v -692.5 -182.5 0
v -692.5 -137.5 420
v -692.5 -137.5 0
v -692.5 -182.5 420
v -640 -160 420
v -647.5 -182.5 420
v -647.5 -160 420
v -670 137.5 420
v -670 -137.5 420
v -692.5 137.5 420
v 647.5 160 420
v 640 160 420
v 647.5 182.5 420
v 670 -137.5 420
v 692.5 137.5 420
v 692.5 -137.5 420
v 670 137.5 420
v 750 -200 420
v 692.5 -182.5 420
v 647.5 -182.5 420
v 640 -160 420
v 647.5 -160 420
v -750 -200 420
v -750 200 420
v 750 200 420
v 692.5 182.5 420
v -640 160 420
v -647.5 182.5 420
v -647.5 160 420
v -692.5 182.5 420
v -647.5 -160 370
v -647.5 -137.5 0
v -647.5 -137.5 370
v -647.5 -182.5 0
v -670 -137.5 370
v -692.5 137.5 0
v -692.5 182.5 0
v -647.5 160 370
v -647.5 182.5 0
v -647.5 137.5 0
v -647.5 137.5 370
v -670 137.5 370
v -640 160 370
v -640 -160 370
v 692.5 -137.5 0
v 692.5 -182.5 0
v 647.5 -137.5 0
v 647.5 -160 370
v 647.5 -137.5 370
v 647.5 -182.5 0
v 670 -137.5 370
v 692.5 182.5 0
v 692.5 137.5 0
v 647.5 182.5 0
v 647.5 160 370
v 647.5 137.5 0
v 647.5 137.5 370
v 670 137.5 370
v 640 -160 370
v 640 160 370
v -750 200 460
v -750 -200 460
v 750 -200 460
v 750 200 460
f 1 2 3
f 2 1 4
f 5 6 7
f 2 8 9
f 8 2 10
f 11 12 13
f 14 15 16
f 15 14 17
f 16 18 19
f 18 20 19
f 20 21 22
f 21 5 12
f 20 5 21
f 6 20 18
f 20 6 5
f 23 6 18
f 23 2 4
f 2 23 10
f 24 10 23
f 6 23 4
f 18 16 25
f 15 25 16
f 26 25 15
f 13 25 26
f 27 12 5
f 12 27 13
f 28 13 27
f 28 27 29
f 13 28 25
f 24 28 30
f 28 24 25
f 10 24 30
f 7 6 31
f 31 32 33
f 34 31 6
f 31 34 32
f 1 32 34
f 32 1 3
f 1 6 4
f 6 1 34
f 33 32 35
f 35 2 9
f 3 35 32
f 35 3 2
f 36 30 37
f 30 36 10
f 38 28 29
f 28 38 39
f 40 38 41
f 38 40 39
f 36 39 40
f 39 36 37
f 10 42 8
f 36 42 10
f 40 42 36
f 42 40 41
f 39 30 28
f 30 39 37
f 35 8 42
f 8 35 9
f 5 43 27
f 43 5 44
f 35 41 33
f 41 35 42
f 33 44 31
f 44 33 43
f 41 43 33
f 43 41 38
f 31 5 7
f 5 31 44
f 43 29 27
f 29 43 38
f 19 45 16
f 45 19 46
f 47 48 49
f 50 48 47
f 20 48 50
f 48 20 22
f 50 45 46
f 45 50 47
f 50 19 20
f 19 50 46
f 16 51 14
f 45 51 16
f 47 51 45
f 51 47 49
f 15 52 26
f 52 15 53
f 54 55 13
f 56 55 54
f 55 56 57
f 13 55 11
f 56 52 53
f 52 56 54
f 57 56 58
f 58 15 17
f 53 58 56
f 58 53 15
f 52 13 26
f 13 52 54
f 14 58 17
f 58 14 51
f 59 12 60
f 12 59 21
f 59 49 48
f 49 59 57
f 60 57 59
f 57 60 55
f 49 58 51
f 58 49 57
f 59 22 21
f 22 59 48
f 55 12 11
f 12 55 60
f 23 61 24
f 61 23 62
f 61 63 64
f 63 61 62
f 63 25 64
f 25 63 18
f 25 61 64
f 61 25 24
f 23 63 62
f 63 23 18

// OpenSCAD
// file: tea_shop_furniture_parameters.scad
// =============================================================================
// TEA SHOP DIORAMA — GROUP 6: EXTERIOR FURNITURE PARAMETERS
// =============================================================================
// All units: mm (1000 mm = 1.0 m), 1:1 real-world scale (1000 units = 1 GTA unit).
// Shared global coordinate system (identical to Groups 1–5):
//   +X -> left -> right  (0 = left outer wall, BUILD_W = right outer wall)
//   +Y -> front -> back  (0 = front wall eave face, BUILD_D = back wall, porch in -Y)
//   +Z -> up             (0 = top surface of base slab / ground datum)
// =============================================================================

// =============================================================================
// 1. SHARED GLOBAL VARIABLES (Reused from Groups 1–5 — identical values)
// =============================================================================
WALL_T             = 250;   // wall panel thickness                      (0.25 m)
BUILD_W            = 6000;  // building width along X                    (6.00 m)
BUILD_D            = 4000;  // building depth along Y                    (4.00 m)
FRONT_H            = 2400;  // wall height at FRONT eave (short side)    (2.40 m)
WIN_X              = 600;   // left pier width / window start X datum    (0.60 m)
WIN_W              = 3400;  // service window width                      (3.40 m)
SILL_H             = 900;   // knee-wall sill height beneath window      (0.90 m)
BASE_H             = 200;   // base plinth vertical thickness            (0.20 m)
BASE_MARGIN_FRONT  = 3000;  // front porch slab depth (extends to Y=-3m) (3.00 m)

// Aliases for compatibility with earlier group files:
wall_thickness     = WALL_T;
building_width     = BUILD_W;
building_depth     = BUILD_D;
front_eave_height  = FRONT_H;
sill_height        = SILL_H;
base_front_margin  = BASE_MARGIN_FRONT;


// =============================================================================
// 2. GROUP 6 PARAMETERS — BENCH (Long Wooden Porch Bench)
// =============================================================================
// REFERENCE OBSERVATIONS (Images: page 1/2 daylight/night, page 5 clay,
// page 7 front elevation, page 8 wireframe, page 14 eye-level):
//
// 1. Bench Style & Proportions:
//    - Simple utilitarian Indian roadside tea stall wooden bench.
//    - Single flat solid rectangular wooden plank for the seat.
//    - Two leg assemblies (one at each end). Wireframe (page 8) and clay (page 5)
//      confirm each leg pair is NOT a solid A-frame slab, but TWO straight
//      square timber posts tied together under the seat by a horizontal cross
//      apron rail. The posts are vertical (0 deg angle) with inset mounting.
//    - Bench height is roughly half the window sill height:
//      SILL_H = 900 mm -> BENCH_HEIGHT = 460 mm (~18 inches standard seating).
//    - Bench length spans ~1500 mm, comfortably seating 3-4 patrons.
//    - Bench width is ~400 mm (standard 16-inch bench seat).
//
// [ESTIMATED DIMENSIONS NOTE]:
// - Bench top thickness (40 mm) estimated from front elevation pixel ratio
//   (~1/11 of bench height).
// - Leg post cross-section (45x45 mm) estimated from wireframe edge density.
// - Inset of legs from ends (80 mm) and edges (17.5 mm) estimated from clay shot.
// - Bench X position (X = 550 mm) sits under the left pier and left edge of
//   the service window, leaving clear passage to the counter and door.
// - Bench Y position (Y = -1250 mm) sits centrally under the pergola canopy
//   (between wall Y=0 and front post line Y=-2250 mm).
BENCH_LENGTH          = 1500; // bench seat plank length along X (mm)
BENCH_WIDTH           = 400;  // bench seat plank width along Y (mm)
BENCH_HEIGHT          = 460;  // total seat height from ground (Z=0) to top face (mm)
BENCH_TOP_THICKNESS   = 40;   // thickness of seat top plank (mm)

// Bench Leg Pair (2 posts + top cross apron rail per end):
BENCH_LEG_SIZE        = 45;   // square timber leg cross-section (45x45 mm)
BENCH_LEG_ANGLE       = 0;    // leg angle from vertical (0 deg = straight vertical posts)
BENCH_LEG_PAIR_WIDTH  = 320;  // center-to-center span across Y of the 2 end legs (mm)
                              // Outer edge-to-edge span = 320 + 45 = 365 mm
                              // Leaves (400 - 365)/2 = 17.5 mm front/back overhang
BENCH_LEG_INSET_X     = 80;   // inset of leg center from left/right plank ends (mm)
BENCH_APRON_WIDTH     = 30;   // thickness of horizontal cross apron rail along X (mm)
BENCH_APRON_HEIGHT    = 50;   // vertical height of horizontal cross apron rail (mm)

// Bench Porch Placement (World Coordinates):
BENCH_POS_X           = 550;  // left edge X coordinate of bench top (mm)
BENCH_POS_Y           = -1250;// center Y coordinate of bench (mm)
                              // Back edge is at Y = -1050 mm, Front edge at Y = -1450 mm
BENCH_ROT_Z           = 0;    // rotation angle about Z (0 = parallel to front wall)


// =============================================================================
// 3. GROUP 6 PARAMETERS — STOOLS (Round Wooden Porch Stools)
// =============================================================================
// REFERENCE OBSERVATIONS (Images: page 1/2, page 5 clay, page 7 elevation,
// page 8 wireframe, page 13 interior close-up, page 14 eye-level):
//
// 1. Stool Style & Proportions:
//    - Round wooden top seat disc with bevel/slight chamfer, resting on
//      4 splayed square timber legs.
//    - Polycount optimization: 12-sided cylinder ( = 12) provides a clean,
//      authentic round silhouette while keeping polycount low for GTA V MLO props.
//    - Stool height is 450 mm (level with the bench, exactly half the 900mm sill).
//    - Seat diameter is 300 mm (~12 inches), standard for street tea stalls.
//    - Legs splay outward slightly from under the seat disc (angle ~3.5 deg),
//      ensuring stability while remaining inside the seat diameter footprint at the base.
//
// 2. Stool Clustering Layout:
//    - The reference images show 3 stools clustered together directly in front of
//      the counter window (X = 2500..3400 mm), where patrons sit to drink tea.
//    - They are NOT placed on a rigid grid:
//        * Stool 1: [2550, -1550] — front-left of the cluster, closer to walkway
//        * Stool 2: [2850, -1050] — back-mid of the cluster, closer to counter window
//        * Stool 3: [3350, -1400] — front-right of the cluster, near entrance path
//
// [ESTIMATED DIMENSIONS NOTE]:
// - Seat thickness (35 mm) estimated from front elevation and wireframe.
// - Leg cross-section (30x30 mm) estimated from wireframe edge density.
// - Splay angle (3.5 deg) estimated from wireframe slope relative to vertical.
STOOL_HEIGHT          = 450;  // total height to top of stool seat (mm)
STOOL_SEAT_DIA        = 300;  // round seat disc diameter (mm)
STOOL_SEAT_RADIUS     = STOOL_SEAT_DIA / 2; // 150 mm
STOOL_SEAT_THICKNESS  = 35;   // seat disc thickness (mm)

// Stool Leg Dimensions:
STOOL_LEG_SIZE        = 30;   // square timber leg cross-section (30x30 mm)
STOOL_LEG_SPLAY_ANGLE = 3.5;  // outward splay angle from vertical (degrees)
STOOL_LEG_RADIUS_TOP  = 95;   // radial distance of leg center from stool center at top (mm)
                              // Leaves 150 - (95 + 15) = 40 mm seat lip overhang

// Derived stool leg length along its angled axis:
STOOL_LEG_H           = STOOL_HEIGHT - STOOL_SEAT_THICKNESS; // vertical leg span (415 mm)
STOOL_LEG_LEN         = STOOL_LEG_H / cos(STOOL_LEG_SPLAY_ANGLE); // angled length (~415.78 mm)

// Low-poly curvature resolution for MLO optimization:
STOOL_FN              = 12;   // 12-sided polygon for round seat disc (MLO target)

// Stool Positions Array (3 clustered [X, Y] coordinates on the porch):
STOOL_POSITIONS = [
    [2550, -1550],  // Stool 1: Front-Left
    [2850, -1050],  // Stool 2: Back-Mid (near counter)
    [3350, -1400]   // Stool 3: Front-Right (near entrance)
];
// main file
// =============================================================================
// TEA SHOP DIORAMA — GROUP 6: BENCH (CENTERED AT LOCAL ORIGIN)
// =============================================================================
// Standalone export with the bench centered at [0, 0, 0] for easy Blender editing.
// Length along X (-750 to +750), Width along Y (-200 to +200), Height Z (0 to 460).
// =============================================================================

include <tea_shop_furniture_modules.scad>;

translate([-BENCH_LENGTH / 2, 0, 0])
    bench(world_pos = false);
